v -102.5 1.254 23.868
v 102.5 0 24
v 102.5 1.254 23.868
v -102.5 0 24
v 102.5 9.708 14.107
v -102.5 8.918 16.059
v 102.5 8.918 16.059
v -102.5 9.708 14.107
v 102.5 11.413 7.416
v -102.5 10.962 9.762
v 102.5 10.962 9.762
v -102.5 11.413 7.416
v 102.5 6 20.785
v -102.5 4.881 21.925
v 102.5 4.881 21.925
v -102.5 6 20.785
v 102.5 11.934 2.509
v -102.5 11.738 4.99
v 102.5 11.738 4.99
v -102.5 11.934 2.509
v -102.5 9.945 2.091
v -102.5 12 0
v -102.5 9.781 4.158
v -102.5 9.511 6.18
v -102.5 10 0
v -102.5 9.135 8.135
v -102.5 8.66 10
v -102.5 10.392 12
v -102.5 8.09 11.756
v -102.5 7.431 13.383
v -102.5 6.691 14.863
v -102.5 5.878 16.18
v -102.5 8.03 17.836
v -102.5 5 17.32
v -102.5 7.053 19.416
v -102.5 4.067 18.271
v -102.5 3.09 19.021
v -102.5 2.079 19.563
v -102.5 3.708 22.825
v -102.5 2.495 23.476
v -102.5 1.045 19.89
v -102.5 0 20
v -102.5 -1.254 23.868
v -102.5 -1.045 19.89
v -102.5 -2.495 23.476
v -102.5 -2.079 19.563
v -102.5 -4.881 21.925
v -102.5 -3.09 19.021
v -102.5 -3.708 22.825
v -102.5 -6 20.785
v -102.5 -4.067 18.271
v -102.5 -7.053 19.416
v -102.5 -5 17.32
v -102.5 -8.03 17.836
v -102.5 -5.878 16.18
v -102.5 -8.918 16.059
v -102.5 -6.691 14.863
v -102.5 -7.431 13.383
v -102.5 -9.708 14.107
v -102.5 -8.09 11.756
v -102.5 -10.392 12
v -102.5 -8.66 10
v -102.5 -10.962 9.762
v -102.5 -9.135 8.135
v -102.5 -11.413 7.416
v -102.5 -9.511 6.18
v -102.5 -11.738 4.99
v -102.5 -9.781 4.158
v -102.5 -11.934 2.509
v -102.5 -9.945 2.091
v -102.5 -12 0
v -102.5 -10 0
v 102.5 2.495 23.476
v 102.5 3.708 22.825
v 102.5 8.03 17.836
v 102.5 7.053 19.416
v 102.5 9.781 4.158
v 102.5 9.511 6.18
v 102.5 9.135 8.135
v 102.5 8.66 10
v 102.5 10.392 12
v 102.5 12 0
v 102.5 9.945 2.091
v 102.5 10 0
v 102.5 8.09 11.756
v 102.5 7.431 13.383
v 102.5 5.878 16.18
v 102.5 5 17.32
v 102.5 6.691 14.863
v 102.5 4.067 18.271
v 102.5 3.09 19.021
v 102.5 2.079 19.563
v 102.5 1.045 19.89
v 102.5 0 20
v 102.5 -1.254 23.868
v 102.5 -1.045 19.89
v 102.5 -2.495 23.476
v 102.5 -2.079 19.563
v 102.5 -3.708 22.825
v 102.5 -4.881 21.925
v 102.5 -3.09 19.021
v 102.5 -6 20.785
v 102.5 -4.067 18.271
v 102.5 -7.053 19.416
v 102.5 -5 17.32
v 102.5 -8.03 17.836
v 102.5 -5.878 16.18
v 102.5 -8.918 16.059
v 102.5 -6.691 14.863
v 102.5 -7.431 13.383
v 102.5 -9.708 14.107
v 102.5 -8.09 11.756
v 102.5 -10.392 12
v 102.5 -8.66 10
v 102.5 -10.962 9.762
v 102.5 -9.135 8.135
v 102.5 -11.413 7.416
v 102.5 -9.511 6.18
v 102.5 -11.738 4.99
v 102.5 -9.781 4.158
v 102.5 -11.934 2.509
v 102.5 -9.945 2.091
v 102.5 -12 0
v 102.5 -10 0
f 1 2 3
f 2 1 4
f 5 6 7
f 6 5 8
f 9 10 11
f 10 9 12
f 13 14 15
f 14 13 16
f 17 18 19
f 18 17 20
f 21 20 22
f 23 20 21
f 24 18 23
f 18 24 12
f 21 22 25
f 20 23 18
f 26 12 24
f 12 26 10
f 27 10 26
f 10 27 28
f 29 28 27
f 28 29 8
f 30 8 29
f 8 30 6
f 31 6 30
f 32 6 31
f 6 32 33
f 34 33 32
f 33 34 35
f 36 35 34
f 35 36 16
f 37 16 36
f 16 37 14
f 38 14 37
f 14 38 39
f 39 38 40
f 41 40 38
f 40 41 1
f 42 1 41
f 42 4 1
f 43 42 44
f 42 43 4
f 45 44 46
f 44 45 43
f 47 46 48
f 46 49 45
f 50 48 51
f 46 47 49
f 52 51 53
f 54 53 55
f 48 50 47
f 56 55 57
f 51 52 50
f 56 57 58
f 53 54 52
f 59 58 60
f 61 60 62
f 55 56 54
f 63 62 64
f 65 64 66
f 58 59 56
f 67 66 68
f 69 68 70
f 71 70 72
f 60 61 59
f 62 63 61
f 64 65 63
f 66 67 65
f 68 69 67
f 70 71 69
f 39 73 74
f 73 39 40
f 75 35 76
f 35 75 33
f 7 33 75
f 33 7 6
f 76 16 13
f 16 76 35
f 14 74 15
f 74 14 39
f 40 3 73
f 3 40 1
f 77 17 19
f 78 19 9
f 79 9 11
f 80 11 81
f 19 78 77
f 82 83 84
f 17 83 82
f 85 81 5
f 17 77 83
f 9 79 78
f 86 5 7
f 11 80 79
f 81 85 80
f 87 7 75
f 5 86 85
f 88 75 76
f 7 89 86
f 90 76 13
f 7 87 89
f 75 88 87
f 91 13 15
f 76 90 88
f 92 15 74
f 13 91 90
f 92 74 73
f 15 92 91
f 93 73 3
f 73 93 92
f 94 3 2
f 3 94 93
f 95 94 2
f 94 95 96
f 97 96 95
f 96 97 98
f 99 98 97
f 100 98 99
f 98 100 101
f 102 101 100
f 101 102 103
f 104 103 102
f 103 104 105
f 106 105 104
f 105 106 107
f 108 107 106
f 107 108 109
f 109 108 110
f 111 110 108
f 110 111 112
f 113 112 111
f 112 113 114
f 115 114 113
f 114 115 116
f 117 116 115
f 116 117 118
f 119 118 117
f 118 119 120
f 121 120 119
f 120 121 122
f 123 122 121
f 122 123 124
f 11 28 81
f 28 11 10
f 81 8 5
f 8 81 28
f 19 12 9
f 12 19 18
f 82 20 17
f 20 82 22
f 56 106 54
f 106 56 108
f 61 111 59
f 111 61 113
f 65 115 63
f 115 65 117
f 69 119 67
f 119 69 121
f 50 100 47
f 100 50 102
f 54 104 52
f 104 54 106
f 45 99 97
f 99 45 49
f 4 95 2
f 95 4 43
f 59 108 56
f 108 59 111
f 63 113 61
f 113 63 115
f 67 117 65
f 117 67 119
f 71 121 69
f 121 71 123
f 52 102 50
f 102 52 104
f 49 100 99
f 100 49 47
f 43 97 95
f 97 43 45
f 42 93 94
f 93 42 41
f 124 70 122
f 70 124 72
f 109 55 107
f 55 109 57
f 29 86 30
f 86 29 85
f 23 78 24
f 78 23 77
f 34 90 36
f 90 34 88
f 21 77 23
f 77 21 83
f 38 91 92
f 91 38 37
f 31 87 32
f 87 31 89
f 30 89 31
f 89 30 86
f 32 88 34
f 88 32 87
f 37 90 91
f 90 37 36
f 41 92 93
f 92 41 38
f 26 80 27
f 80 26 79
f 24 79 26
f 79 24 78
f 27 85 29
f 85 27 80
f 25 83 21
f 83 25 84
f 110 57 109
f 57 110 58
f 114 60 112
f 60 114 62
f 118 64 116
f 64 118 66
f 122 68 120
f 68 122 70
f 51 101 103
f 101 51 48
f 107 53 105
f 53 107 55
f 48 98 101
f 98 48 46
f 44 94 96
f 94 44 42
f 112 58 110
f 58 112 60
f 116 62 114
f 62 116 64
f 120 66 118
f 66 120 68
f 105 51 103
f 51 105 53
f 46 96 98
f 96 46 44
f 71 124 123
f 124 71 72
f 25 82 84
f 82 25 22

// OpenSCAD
$fn=60;

difference() {
	rotate([0, 90, 0])
	scale([2, 1, 1])
	difference() {
		cylinder(r=12, h=205, center=true);
		cylinder(r=10, h=206, center=true);
	}
	// Delete the bottom half.
	translate([0, 0, -150])
	cube(300, center=true);
}
